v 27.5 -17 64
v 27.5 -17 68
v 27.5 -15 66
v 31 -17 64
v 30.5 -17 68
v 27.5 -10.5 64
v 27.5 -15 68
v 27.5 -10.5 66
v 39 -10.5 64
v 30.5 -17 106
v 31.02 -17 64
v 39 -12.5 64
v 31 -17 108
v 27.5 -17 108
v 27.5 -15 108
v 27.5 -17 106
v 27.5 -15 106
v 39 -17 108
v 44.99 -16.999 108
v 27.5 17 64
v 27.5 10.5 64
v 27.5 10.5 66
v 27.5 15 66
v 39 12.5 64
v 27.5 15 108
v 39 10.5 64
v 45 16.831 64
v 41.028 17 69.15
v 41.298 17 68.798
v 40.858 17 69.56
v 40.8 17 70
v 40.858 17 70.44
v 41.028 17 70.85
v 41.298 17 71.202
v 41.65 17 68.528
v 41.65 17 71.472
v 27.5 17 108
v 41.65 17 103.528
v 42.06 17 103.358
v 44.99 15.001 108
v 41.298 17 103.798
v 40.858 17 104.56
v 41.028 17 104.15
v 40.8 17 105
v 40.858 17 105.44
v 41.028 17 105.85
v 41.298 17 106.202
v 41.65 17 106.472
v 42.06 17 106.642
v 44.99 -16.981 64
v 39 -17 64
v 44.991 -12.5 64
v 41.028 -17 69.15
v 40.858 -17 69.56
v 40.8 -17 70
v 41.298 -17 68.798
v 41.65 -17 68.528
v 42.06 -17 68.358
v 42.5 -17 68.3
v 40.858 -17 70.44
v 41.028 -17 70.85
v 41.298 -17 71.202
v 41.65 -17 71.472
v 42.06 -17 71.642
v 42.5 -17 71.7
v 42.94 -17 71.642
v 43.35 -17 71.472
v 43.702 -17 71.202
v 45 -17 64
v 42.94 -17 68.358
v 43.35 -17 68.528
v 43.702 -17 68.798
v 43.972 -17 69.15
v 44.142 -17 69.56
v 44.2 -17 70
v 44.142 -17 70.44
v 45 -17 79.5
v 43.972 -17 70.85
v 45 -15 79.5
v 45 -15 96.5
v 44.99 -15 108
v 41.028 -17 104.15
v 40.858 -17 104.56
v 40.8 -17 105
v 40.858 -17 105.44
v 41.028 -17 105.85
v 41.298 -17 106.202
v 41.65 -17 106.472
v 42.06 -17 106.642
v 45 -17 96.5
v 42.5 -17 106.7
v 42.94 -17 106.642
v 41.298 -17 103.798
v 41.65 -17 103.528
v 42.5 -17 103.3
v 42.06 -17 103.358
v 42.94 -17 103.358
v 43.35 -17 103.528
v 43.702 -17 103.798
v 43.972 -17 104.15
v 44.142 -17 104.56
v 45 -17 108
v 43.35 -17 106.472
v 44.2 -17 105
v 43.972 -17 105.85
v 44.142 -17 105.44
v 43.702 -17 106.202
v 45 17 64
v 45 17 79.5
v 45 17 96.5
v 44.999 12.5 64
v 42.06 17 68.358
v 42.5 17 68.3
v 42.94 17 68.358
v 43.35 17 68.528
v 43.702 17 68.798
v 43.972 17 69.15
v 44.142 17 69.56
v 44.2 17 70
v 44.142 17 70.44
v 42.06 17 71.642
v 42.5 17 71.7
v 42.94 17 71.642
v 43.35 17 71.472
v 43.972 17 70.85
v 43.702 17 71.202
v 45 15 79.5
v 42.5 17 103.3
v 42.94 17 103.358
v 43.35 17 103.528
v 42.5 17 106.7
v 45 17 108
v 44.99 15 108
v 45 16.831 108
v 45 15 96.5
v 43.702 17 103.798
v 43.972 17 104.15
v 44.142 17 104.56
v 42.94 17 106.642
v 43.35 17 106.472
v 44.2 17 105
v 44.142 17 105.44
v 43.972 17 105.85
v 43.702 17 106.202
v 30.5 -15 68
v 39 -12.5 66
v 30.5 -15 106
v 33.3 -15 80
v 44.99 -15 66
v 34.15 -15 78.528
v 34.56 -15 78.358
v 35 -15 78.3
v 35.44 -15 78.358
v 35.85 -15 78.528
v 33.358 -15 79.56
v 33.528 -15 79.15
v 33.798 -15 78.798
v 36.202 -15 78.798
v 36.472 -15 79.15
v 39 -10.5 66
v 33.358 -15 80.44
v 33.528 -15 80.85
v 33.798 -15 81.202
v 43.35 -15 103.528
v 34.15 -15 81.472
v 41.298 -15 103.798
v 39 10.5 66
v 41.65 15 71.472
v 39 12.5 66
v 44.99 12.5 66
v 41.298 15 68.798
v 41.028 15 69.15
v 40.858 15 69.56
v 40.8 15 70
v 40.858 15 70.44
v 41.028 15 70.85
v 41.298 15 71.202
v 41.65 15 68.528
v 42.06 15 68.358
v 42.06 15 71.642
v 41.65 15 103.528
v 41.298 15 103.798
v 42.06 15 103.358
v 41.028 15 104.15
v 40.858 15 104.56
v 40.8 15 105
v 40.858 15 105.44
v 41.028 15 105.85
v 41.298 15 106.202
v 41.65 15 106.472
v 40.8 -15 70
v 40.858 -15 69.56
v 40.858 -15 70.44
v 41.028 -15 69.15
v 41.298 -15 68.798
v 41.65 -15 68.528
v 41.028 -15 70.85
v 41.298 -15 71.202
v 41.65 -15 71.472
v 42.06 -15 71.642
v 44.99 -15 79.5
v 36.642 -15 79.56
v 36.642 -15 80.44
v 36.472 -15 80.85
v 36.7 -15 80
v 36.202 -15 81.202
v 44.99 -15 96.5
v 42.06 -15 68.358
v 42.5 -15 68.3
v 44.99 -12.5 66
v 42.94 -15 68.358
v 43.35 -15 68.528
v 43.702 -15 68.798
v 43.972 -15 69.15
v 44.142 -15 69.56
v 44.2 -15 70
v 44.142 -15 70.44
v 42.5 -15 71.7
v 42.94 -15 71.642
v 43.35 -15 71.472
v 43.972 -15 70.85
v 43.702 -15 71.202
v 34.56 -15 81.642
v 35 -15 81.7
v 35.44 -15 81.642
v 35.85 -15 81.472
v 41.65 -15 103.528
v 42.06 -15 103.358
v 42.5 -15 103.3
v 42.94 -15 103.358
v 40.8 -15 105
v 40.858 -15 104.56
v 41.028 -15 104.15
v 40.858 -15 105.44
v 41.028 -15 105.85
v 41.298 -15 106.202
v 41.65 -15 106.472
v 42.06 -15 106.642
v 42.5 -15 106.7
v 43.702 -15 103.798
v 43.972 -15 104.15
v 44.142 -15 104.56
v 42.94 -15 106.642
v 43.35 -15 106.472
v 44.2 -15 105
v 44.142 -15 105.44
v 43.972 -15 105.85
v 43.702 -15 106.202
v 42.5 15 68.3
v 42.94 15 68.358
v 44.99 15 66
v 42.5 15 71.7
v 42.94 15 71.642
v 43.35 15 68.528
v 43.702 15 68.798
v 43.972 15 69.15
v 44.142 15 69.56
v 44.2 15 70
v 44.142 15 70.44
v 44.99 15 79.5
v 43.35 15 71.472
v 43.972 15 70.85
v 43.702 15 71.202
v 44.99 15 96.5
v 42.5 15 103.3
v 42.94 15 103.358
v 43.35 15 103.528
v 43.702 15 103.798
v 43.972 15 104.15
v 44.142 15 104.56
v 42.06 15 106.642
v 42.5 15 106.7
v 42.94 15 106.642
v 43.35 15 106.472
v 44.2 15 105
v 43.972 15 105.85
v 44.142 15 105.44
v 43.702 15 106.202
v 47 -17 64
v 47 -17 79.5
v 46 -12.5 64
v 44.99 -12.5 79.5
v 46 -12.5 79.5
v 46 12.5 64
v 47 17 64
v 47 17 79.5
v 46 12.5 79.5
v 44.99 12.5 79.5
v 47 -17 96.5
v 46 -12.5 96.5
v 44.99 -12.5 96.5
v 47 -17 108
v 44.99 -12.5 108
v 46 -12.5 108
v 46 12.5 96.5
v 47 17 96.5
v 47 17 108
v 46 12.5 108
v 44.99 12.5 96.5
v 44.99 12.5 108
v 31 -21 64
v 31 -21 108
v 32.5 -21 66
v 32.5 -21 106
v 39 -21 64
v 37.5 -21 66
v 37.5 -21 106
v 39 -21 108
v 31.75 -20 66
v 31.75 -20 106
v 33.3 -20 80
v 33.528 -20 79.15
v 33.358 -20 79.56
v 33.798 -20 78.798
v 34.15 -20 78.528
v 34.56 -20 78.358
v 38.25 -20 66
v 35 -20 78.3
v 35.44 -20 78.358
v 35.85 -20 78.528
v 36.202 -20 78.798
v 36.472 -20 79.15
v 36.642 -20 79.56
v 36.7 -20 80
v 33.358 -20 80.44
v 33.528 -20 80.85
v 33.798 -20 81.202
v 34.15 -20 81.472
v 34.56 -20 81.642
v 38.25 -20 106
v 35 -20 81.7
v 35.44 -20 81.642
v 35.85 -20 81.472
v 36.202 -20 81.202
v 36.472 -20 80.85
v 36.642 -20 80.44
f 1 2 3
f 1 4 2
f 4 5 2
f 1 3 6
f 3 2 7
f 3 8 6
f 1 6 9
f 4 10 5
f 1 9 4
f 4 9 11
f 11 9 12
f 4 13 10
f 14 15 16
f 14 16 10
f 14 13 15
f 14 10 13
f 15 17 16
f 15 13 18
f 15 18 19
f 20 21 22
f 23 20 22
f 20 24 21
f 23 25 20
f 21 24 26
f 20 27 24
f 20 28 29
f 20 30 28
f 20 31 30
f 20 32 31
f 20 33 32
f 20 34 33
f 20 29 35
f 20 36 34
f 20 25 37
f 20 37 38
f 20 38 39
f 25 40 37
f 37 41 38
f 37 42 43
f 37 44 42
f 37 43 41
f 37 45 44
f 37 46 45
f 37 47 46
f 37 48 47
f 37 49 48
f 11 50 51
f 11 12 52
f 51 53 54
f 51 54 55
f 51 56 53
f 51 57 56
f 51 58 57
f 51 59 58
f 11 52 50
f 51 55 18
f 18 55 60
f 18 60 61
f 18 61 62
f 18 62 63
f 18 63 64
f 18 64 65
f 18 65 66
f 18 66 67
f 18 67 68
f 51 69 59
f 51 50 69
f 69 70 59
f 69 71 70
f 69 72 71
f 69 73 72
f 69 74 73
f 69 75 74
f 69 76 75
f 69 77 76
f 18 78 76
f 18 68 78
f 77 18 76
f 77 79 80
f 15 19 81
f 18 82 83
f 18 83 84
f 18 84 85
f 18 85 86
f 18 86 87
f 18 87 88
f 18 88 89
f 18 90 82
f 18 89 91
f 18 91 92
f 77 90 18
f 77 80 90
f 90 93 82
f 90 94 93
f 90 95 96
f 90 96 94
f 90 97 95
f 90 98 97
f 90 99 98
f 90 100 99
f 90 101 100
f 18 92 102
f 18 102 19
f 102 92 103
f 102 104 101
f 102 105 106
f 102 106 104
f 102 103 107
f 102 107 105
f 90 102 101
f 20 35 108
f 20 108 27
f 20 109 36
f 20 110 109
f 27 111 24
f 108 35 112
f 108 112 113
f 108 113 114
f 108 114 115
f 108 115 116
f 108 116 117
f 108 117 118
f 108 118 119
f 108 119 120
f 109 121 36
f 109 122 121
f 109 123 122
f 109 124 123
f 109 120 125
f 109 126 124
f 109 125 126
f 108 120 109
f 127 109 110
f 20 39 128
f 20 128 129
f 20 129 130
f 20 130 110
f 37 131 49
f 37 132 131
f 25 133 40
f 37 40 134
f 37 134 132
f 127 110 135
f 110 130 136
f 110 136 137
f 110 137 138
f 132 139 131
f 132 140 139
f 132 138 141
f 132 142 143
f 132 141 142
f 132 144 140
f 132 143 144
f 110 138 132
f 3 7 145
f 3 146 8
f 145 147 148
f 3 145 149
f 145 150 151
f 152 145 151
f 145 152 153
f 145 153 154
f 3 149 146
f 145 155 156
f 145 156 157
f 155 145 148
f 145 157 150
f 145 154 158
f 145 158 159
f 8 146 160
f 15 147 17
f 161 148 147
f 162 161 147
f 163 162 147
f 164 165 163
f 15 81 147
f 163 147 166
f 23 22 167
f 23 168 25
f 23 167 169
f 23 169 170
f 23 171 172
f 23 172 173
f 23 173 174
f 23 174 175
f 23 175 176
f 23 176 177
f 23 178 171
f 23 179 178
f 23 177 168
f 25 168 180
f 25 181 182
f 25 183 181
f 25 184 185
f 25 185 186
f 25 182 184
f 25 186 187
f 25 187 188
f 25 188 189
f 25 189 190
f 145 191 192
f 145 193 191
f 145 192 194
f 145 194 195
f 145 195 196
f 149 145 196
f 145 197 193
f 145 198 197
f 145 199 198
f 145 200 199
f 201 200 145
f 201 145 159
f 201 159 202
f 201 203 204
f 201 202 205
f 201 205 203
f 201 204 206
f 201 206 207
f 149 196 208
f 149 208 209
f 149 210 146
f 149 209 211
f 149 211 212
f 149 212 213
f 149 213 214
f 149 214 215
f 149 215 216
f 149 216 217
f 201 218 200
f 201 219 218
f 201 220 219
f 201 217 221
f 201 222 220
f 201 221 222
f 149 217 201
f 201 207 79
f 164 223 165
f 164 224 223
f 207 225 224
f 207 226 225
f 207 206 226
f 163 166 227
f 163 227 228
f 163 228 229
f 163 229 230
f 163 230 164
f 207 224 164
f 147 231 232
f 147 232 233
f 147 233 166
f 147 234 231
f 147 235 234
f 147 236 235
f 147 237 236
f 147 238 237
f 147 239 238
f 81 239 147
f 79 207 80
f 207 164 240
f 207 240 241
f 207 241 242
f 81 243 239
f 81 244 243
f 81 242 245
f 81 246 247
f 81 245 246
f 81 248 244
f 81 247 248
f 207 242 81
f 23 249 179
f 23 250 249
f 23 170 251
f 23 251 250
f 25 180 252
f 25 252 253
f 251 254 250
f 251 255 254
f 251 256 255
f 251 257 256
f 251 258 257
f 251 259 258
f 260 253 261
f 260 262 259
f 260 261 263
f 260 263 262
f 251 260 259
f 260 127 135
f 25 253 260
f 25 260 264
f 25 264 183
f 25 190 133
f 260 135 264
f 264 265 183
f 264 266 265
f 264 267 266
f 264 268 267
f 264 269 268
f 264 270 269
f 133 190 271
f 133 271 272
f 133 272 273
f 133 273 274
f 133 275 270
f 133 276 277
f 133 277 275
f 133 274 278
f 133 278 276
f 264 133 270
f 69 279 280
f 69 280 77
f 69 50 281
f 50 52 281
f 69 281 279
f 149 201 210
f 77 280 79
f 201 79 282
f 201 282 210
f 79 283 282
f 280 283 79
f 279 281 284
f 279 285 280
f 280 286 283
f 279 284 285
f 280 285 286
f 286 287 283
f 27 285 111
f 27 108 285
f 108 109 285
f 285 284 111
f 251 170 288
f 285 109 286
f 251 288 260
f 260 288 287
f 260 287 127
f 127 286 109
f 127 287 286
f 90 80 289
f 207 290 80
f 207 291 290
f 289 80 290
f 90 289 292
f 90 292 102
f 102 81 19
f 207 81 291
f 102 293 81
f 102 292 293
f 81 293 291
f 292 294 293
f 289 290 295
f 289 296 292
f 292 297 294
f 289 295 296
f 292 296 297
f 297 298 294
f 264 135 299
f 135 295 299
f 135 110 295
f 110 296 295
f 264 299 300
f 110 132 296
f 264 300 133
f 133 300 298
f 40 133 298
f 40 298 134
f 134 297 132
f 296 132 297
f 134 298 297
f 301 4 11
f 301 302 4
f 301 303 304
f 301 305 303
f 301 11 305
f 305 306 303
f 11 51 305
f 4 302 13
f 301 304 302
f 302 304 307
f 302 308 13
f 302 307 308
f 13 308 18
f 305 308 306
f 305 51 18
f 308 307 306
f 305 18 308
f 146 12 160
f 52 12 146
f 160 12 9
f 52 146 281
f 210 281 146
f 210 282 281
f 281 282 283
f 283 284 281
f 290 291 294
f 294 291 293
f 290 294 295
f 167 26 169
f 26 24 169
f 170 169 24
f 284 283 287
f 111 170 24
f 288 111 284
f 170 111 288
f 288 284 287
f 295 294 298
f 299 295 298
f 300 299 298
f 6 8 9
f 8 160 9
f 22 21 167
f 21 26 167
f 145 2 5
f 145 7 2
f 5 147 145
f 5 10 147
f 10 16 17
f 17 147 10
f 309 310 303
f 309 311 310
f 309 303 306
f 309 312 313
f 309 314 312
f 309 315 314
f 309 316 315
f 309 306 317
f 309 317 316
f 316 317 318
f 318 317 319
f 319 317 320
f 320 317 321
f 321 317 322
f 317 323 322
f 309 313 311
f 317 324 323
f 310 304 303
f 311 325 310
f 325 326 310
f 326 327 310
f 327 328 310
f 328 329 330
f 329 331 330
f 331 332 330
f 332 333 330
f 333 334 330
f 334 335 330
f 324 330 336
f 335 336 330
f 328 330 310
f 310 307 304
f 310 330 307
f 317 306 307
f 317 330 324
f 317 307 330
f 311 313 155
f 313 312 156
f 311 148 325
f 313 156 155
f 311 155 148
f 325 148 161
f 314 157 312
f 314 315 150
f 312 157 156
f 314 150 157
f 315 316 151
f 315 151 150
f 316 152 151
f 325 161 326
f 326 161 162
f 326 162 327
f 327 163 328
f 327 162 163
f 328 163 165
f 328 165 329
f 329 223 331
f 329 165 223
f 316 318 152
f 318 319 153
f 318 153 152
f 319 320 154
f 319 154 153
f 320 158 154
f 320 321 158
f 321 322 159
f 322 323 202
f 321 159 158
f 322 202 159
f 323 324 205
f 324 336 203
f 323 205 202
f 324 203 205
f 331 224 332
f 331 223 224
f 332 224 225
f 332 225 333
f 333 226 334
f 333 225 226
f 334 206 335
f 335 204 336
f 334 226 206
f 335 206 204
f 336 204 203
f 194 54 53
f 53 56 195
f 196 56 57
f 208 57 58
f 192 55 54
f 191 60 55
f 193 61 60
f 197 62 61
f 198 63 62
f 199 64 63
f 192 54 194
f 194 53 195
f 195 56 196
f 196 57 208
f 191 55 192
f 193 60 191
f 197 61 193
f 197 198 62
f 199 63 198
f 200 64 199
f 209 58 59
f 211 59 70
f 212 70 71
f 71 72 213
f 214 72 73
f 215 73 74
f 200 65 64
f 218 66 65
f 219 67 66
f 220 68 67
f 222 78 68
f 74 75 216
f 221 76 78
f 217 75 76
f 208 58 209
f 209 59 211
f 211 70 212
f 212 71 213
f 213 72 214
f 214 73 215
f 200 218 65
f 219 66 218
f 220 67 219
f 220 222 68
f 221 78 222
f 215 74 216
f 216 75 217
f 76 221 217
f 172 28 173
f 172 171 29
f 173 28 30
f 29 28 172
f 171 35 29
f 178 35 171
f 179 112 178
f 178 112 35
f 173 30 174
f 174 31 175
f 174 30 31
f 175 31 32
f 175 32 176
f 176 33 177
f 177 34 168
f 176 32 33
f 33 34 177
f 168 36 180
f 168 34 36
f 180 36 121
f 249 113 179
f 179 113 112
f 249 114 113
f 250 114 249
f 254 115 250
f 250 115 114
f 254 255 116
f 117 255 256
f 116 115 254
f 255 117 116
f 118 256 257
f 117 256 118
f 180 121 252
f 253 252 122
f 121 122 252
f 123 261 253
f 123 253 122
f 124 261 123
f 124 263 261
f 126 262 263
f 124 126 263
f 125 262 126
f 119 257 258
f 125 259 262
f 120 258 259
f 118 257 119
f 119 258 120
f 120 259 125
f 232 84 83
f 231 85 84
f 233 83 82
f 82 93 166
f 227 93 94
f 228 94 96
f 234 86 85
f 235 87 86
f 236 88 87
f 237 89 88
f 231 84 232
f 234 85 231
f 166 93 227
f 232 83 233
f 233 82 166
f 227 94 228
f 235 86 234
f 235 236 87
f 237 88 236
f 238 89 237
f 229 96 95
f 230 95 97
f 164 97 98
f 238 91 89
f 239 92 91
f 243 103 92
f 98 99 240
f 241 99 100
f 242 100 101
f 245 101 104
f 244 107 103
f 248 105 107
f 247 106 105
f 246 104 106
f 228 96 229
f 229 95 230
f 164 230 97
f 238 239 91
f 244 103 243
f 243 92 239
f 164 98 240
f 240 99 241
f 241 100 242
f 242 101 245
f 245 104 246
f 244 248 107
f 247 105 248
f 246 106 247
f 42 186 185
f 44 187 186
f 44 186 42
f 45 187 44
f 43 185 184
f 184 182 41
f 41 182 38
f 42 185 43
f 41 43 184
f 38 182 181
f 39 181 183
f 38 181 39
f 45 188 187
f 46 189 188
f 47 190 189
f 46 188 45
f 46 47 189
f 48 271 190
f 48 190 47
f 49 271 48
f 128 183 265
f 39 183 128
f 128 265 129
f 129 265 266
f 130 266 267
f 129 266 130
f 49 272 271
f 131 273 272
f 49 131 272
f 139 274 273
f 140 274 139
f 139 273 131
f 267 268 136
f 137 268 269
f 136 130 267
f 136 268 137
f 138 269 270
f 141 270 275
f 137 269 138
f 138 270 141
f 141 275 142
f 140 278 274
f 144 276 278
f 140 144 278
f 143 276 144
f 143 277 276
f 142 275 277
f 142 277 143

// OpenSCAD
// =====================================================================
//  p22_rail_shroud.scad - P22 rail shroud G4 (lower rail, down-stop block and carriage at the down-stop)
//  PROJECT SCRATCH · 05-engineering/cad/frame · units: mm · frame: global (section 2)
//  Sources: mechanical.md section 5.5 G4 (U-channel on the mast, closed bottom, 2 mm walls, 25 mm riser slot),
//  6.4 (scale strip in a dovetail on the side face), 11 P22.
//  AS MODELLED: floor + two side walls + a back web behind the mast (notched for the crossbar).  A front (-X)
//  wall is impossible: the palm lid (X to 27.2, Z to 72) rises 28 mm through that space (C-Y4).  Floor at Z 64
//  because the knuckle plate's +X edge reaches Z 61.2 at the float up-stop; the down-stop block P23 plugs the
//  floor cut-out.  Scale dovetail on the OUTSIDE of the -Y wall; the riser's pointer fin passes a slot in that wall.
// =====================================================================
include <lib_sp1.scad>

X0 = 27.5;  X1 = 45;  Y = 17;  Z0 = 64;  Z1 = 108;  WALL = 2;
DOVE_X0 = 31;  DOVE_X1 = 39;  DOVE_Y0 = -21;  DOVE_Y1 = -17;          // boss outside the -Y wall
DOVE_W_OPEN = 5.0;  DOVE_W_BOT = 6.5;  DOVE_D = 1.0;  DOVE_Z0 = 66;  DOVE_Z1 = 106;   // groove (wider inside), along Z
LOCK_Z = 80;                                                          // M3 lock thumbscrew through the boss into the strip slot
FIN_SLOT = [26.5, 30.5, 68, 106];                                     // X0, X1, Z0, Z1 slot in the -Y wall for the pointer fin
MAST_CUT = [39, 46, 12.5];  STOP_CUT = [27, 41, 10.5];                // floor cut-outs: mast (X, X, +/-Y), down-stop block
BACK_X1 = 47;  BACK_NOTCH = [79.5, 96.5];                             // back web behind the mast, notched for the crossbar
THRU_Z = [70, 105];  THRU_X = 42.5;                                   // M3 through both walls and the mast (P21)

module p22_rail_shroud() difference() {
    union() {
        difference() { box(X0, X1, -Y, Y, Z0, Z1); box(X0 - 1, X1 + 1, -Y + WALL, Y - WALL, Z0 + WALL, Z1 + 1); }
        box(X1 - 0.01, BACK_X1, -Y, Y, Z0, BACK_NOTCH[0]);
        box(X1 - 0.01, BACK_X1, -Y, Y, BACK_NOTCH[1], Z1);
        box(DOVE_X0, DOVE_X1, DOVE_Y0, DOVE_Y1 + 0.01, Z0, Z1);
    }
    box(MAST_CUT[0], MAST_CUT[1], -MAST_CUT[2], MAST_CUT[2], Z0 - 1, Z1 + 1);
    box(STOP_CUT[0], STOP_CUT[1], -STOP_CUT[2], STOP_CUT[2], Z0 - 1, Z0 + WALL + 1);
    box(FIN_SLOT[0], FIN_SLOT[1], -Y - 1, -Y + WALL + 1, FIN_SLOT[2], FIN_SLOT[3]);
    dcx = (DOVE_X0 + DOVE_X1) / 2;  yo = DOVE_Y0;  yb = DOVE_Y0 + DOVE_D;
    translate([0, 0, DOVE_Z0]) linear_extrude(DOVE_Z1 - DOVE_Z0)
        polygon([[dcx - DOVE_W_OPEN / 2, yo - 1], [dcx + DOVE_W_OPEN / 2, yo - 1], [dcx + DOVE_W_OPEN / 2, yo],
                 [dcx + DOVE_W_BOT / 2, yb], [dcx - DOVE_W_BOT / 2, yb], [dcx - DOVE_W_OPEN / 2, yo]]);
    cyl_y(M3_CLEAR / 2, DOVE_Y0 - 1, -Y + WALL + 1, dcx, LOCK_Z, fn = 24);
    for (z = THRU_Z) cyl_y(M3_CLEAR / 2, -Y - 1, Y + 1, THRU_X, z, fn = 24);
}

p22_rail_shroud();
